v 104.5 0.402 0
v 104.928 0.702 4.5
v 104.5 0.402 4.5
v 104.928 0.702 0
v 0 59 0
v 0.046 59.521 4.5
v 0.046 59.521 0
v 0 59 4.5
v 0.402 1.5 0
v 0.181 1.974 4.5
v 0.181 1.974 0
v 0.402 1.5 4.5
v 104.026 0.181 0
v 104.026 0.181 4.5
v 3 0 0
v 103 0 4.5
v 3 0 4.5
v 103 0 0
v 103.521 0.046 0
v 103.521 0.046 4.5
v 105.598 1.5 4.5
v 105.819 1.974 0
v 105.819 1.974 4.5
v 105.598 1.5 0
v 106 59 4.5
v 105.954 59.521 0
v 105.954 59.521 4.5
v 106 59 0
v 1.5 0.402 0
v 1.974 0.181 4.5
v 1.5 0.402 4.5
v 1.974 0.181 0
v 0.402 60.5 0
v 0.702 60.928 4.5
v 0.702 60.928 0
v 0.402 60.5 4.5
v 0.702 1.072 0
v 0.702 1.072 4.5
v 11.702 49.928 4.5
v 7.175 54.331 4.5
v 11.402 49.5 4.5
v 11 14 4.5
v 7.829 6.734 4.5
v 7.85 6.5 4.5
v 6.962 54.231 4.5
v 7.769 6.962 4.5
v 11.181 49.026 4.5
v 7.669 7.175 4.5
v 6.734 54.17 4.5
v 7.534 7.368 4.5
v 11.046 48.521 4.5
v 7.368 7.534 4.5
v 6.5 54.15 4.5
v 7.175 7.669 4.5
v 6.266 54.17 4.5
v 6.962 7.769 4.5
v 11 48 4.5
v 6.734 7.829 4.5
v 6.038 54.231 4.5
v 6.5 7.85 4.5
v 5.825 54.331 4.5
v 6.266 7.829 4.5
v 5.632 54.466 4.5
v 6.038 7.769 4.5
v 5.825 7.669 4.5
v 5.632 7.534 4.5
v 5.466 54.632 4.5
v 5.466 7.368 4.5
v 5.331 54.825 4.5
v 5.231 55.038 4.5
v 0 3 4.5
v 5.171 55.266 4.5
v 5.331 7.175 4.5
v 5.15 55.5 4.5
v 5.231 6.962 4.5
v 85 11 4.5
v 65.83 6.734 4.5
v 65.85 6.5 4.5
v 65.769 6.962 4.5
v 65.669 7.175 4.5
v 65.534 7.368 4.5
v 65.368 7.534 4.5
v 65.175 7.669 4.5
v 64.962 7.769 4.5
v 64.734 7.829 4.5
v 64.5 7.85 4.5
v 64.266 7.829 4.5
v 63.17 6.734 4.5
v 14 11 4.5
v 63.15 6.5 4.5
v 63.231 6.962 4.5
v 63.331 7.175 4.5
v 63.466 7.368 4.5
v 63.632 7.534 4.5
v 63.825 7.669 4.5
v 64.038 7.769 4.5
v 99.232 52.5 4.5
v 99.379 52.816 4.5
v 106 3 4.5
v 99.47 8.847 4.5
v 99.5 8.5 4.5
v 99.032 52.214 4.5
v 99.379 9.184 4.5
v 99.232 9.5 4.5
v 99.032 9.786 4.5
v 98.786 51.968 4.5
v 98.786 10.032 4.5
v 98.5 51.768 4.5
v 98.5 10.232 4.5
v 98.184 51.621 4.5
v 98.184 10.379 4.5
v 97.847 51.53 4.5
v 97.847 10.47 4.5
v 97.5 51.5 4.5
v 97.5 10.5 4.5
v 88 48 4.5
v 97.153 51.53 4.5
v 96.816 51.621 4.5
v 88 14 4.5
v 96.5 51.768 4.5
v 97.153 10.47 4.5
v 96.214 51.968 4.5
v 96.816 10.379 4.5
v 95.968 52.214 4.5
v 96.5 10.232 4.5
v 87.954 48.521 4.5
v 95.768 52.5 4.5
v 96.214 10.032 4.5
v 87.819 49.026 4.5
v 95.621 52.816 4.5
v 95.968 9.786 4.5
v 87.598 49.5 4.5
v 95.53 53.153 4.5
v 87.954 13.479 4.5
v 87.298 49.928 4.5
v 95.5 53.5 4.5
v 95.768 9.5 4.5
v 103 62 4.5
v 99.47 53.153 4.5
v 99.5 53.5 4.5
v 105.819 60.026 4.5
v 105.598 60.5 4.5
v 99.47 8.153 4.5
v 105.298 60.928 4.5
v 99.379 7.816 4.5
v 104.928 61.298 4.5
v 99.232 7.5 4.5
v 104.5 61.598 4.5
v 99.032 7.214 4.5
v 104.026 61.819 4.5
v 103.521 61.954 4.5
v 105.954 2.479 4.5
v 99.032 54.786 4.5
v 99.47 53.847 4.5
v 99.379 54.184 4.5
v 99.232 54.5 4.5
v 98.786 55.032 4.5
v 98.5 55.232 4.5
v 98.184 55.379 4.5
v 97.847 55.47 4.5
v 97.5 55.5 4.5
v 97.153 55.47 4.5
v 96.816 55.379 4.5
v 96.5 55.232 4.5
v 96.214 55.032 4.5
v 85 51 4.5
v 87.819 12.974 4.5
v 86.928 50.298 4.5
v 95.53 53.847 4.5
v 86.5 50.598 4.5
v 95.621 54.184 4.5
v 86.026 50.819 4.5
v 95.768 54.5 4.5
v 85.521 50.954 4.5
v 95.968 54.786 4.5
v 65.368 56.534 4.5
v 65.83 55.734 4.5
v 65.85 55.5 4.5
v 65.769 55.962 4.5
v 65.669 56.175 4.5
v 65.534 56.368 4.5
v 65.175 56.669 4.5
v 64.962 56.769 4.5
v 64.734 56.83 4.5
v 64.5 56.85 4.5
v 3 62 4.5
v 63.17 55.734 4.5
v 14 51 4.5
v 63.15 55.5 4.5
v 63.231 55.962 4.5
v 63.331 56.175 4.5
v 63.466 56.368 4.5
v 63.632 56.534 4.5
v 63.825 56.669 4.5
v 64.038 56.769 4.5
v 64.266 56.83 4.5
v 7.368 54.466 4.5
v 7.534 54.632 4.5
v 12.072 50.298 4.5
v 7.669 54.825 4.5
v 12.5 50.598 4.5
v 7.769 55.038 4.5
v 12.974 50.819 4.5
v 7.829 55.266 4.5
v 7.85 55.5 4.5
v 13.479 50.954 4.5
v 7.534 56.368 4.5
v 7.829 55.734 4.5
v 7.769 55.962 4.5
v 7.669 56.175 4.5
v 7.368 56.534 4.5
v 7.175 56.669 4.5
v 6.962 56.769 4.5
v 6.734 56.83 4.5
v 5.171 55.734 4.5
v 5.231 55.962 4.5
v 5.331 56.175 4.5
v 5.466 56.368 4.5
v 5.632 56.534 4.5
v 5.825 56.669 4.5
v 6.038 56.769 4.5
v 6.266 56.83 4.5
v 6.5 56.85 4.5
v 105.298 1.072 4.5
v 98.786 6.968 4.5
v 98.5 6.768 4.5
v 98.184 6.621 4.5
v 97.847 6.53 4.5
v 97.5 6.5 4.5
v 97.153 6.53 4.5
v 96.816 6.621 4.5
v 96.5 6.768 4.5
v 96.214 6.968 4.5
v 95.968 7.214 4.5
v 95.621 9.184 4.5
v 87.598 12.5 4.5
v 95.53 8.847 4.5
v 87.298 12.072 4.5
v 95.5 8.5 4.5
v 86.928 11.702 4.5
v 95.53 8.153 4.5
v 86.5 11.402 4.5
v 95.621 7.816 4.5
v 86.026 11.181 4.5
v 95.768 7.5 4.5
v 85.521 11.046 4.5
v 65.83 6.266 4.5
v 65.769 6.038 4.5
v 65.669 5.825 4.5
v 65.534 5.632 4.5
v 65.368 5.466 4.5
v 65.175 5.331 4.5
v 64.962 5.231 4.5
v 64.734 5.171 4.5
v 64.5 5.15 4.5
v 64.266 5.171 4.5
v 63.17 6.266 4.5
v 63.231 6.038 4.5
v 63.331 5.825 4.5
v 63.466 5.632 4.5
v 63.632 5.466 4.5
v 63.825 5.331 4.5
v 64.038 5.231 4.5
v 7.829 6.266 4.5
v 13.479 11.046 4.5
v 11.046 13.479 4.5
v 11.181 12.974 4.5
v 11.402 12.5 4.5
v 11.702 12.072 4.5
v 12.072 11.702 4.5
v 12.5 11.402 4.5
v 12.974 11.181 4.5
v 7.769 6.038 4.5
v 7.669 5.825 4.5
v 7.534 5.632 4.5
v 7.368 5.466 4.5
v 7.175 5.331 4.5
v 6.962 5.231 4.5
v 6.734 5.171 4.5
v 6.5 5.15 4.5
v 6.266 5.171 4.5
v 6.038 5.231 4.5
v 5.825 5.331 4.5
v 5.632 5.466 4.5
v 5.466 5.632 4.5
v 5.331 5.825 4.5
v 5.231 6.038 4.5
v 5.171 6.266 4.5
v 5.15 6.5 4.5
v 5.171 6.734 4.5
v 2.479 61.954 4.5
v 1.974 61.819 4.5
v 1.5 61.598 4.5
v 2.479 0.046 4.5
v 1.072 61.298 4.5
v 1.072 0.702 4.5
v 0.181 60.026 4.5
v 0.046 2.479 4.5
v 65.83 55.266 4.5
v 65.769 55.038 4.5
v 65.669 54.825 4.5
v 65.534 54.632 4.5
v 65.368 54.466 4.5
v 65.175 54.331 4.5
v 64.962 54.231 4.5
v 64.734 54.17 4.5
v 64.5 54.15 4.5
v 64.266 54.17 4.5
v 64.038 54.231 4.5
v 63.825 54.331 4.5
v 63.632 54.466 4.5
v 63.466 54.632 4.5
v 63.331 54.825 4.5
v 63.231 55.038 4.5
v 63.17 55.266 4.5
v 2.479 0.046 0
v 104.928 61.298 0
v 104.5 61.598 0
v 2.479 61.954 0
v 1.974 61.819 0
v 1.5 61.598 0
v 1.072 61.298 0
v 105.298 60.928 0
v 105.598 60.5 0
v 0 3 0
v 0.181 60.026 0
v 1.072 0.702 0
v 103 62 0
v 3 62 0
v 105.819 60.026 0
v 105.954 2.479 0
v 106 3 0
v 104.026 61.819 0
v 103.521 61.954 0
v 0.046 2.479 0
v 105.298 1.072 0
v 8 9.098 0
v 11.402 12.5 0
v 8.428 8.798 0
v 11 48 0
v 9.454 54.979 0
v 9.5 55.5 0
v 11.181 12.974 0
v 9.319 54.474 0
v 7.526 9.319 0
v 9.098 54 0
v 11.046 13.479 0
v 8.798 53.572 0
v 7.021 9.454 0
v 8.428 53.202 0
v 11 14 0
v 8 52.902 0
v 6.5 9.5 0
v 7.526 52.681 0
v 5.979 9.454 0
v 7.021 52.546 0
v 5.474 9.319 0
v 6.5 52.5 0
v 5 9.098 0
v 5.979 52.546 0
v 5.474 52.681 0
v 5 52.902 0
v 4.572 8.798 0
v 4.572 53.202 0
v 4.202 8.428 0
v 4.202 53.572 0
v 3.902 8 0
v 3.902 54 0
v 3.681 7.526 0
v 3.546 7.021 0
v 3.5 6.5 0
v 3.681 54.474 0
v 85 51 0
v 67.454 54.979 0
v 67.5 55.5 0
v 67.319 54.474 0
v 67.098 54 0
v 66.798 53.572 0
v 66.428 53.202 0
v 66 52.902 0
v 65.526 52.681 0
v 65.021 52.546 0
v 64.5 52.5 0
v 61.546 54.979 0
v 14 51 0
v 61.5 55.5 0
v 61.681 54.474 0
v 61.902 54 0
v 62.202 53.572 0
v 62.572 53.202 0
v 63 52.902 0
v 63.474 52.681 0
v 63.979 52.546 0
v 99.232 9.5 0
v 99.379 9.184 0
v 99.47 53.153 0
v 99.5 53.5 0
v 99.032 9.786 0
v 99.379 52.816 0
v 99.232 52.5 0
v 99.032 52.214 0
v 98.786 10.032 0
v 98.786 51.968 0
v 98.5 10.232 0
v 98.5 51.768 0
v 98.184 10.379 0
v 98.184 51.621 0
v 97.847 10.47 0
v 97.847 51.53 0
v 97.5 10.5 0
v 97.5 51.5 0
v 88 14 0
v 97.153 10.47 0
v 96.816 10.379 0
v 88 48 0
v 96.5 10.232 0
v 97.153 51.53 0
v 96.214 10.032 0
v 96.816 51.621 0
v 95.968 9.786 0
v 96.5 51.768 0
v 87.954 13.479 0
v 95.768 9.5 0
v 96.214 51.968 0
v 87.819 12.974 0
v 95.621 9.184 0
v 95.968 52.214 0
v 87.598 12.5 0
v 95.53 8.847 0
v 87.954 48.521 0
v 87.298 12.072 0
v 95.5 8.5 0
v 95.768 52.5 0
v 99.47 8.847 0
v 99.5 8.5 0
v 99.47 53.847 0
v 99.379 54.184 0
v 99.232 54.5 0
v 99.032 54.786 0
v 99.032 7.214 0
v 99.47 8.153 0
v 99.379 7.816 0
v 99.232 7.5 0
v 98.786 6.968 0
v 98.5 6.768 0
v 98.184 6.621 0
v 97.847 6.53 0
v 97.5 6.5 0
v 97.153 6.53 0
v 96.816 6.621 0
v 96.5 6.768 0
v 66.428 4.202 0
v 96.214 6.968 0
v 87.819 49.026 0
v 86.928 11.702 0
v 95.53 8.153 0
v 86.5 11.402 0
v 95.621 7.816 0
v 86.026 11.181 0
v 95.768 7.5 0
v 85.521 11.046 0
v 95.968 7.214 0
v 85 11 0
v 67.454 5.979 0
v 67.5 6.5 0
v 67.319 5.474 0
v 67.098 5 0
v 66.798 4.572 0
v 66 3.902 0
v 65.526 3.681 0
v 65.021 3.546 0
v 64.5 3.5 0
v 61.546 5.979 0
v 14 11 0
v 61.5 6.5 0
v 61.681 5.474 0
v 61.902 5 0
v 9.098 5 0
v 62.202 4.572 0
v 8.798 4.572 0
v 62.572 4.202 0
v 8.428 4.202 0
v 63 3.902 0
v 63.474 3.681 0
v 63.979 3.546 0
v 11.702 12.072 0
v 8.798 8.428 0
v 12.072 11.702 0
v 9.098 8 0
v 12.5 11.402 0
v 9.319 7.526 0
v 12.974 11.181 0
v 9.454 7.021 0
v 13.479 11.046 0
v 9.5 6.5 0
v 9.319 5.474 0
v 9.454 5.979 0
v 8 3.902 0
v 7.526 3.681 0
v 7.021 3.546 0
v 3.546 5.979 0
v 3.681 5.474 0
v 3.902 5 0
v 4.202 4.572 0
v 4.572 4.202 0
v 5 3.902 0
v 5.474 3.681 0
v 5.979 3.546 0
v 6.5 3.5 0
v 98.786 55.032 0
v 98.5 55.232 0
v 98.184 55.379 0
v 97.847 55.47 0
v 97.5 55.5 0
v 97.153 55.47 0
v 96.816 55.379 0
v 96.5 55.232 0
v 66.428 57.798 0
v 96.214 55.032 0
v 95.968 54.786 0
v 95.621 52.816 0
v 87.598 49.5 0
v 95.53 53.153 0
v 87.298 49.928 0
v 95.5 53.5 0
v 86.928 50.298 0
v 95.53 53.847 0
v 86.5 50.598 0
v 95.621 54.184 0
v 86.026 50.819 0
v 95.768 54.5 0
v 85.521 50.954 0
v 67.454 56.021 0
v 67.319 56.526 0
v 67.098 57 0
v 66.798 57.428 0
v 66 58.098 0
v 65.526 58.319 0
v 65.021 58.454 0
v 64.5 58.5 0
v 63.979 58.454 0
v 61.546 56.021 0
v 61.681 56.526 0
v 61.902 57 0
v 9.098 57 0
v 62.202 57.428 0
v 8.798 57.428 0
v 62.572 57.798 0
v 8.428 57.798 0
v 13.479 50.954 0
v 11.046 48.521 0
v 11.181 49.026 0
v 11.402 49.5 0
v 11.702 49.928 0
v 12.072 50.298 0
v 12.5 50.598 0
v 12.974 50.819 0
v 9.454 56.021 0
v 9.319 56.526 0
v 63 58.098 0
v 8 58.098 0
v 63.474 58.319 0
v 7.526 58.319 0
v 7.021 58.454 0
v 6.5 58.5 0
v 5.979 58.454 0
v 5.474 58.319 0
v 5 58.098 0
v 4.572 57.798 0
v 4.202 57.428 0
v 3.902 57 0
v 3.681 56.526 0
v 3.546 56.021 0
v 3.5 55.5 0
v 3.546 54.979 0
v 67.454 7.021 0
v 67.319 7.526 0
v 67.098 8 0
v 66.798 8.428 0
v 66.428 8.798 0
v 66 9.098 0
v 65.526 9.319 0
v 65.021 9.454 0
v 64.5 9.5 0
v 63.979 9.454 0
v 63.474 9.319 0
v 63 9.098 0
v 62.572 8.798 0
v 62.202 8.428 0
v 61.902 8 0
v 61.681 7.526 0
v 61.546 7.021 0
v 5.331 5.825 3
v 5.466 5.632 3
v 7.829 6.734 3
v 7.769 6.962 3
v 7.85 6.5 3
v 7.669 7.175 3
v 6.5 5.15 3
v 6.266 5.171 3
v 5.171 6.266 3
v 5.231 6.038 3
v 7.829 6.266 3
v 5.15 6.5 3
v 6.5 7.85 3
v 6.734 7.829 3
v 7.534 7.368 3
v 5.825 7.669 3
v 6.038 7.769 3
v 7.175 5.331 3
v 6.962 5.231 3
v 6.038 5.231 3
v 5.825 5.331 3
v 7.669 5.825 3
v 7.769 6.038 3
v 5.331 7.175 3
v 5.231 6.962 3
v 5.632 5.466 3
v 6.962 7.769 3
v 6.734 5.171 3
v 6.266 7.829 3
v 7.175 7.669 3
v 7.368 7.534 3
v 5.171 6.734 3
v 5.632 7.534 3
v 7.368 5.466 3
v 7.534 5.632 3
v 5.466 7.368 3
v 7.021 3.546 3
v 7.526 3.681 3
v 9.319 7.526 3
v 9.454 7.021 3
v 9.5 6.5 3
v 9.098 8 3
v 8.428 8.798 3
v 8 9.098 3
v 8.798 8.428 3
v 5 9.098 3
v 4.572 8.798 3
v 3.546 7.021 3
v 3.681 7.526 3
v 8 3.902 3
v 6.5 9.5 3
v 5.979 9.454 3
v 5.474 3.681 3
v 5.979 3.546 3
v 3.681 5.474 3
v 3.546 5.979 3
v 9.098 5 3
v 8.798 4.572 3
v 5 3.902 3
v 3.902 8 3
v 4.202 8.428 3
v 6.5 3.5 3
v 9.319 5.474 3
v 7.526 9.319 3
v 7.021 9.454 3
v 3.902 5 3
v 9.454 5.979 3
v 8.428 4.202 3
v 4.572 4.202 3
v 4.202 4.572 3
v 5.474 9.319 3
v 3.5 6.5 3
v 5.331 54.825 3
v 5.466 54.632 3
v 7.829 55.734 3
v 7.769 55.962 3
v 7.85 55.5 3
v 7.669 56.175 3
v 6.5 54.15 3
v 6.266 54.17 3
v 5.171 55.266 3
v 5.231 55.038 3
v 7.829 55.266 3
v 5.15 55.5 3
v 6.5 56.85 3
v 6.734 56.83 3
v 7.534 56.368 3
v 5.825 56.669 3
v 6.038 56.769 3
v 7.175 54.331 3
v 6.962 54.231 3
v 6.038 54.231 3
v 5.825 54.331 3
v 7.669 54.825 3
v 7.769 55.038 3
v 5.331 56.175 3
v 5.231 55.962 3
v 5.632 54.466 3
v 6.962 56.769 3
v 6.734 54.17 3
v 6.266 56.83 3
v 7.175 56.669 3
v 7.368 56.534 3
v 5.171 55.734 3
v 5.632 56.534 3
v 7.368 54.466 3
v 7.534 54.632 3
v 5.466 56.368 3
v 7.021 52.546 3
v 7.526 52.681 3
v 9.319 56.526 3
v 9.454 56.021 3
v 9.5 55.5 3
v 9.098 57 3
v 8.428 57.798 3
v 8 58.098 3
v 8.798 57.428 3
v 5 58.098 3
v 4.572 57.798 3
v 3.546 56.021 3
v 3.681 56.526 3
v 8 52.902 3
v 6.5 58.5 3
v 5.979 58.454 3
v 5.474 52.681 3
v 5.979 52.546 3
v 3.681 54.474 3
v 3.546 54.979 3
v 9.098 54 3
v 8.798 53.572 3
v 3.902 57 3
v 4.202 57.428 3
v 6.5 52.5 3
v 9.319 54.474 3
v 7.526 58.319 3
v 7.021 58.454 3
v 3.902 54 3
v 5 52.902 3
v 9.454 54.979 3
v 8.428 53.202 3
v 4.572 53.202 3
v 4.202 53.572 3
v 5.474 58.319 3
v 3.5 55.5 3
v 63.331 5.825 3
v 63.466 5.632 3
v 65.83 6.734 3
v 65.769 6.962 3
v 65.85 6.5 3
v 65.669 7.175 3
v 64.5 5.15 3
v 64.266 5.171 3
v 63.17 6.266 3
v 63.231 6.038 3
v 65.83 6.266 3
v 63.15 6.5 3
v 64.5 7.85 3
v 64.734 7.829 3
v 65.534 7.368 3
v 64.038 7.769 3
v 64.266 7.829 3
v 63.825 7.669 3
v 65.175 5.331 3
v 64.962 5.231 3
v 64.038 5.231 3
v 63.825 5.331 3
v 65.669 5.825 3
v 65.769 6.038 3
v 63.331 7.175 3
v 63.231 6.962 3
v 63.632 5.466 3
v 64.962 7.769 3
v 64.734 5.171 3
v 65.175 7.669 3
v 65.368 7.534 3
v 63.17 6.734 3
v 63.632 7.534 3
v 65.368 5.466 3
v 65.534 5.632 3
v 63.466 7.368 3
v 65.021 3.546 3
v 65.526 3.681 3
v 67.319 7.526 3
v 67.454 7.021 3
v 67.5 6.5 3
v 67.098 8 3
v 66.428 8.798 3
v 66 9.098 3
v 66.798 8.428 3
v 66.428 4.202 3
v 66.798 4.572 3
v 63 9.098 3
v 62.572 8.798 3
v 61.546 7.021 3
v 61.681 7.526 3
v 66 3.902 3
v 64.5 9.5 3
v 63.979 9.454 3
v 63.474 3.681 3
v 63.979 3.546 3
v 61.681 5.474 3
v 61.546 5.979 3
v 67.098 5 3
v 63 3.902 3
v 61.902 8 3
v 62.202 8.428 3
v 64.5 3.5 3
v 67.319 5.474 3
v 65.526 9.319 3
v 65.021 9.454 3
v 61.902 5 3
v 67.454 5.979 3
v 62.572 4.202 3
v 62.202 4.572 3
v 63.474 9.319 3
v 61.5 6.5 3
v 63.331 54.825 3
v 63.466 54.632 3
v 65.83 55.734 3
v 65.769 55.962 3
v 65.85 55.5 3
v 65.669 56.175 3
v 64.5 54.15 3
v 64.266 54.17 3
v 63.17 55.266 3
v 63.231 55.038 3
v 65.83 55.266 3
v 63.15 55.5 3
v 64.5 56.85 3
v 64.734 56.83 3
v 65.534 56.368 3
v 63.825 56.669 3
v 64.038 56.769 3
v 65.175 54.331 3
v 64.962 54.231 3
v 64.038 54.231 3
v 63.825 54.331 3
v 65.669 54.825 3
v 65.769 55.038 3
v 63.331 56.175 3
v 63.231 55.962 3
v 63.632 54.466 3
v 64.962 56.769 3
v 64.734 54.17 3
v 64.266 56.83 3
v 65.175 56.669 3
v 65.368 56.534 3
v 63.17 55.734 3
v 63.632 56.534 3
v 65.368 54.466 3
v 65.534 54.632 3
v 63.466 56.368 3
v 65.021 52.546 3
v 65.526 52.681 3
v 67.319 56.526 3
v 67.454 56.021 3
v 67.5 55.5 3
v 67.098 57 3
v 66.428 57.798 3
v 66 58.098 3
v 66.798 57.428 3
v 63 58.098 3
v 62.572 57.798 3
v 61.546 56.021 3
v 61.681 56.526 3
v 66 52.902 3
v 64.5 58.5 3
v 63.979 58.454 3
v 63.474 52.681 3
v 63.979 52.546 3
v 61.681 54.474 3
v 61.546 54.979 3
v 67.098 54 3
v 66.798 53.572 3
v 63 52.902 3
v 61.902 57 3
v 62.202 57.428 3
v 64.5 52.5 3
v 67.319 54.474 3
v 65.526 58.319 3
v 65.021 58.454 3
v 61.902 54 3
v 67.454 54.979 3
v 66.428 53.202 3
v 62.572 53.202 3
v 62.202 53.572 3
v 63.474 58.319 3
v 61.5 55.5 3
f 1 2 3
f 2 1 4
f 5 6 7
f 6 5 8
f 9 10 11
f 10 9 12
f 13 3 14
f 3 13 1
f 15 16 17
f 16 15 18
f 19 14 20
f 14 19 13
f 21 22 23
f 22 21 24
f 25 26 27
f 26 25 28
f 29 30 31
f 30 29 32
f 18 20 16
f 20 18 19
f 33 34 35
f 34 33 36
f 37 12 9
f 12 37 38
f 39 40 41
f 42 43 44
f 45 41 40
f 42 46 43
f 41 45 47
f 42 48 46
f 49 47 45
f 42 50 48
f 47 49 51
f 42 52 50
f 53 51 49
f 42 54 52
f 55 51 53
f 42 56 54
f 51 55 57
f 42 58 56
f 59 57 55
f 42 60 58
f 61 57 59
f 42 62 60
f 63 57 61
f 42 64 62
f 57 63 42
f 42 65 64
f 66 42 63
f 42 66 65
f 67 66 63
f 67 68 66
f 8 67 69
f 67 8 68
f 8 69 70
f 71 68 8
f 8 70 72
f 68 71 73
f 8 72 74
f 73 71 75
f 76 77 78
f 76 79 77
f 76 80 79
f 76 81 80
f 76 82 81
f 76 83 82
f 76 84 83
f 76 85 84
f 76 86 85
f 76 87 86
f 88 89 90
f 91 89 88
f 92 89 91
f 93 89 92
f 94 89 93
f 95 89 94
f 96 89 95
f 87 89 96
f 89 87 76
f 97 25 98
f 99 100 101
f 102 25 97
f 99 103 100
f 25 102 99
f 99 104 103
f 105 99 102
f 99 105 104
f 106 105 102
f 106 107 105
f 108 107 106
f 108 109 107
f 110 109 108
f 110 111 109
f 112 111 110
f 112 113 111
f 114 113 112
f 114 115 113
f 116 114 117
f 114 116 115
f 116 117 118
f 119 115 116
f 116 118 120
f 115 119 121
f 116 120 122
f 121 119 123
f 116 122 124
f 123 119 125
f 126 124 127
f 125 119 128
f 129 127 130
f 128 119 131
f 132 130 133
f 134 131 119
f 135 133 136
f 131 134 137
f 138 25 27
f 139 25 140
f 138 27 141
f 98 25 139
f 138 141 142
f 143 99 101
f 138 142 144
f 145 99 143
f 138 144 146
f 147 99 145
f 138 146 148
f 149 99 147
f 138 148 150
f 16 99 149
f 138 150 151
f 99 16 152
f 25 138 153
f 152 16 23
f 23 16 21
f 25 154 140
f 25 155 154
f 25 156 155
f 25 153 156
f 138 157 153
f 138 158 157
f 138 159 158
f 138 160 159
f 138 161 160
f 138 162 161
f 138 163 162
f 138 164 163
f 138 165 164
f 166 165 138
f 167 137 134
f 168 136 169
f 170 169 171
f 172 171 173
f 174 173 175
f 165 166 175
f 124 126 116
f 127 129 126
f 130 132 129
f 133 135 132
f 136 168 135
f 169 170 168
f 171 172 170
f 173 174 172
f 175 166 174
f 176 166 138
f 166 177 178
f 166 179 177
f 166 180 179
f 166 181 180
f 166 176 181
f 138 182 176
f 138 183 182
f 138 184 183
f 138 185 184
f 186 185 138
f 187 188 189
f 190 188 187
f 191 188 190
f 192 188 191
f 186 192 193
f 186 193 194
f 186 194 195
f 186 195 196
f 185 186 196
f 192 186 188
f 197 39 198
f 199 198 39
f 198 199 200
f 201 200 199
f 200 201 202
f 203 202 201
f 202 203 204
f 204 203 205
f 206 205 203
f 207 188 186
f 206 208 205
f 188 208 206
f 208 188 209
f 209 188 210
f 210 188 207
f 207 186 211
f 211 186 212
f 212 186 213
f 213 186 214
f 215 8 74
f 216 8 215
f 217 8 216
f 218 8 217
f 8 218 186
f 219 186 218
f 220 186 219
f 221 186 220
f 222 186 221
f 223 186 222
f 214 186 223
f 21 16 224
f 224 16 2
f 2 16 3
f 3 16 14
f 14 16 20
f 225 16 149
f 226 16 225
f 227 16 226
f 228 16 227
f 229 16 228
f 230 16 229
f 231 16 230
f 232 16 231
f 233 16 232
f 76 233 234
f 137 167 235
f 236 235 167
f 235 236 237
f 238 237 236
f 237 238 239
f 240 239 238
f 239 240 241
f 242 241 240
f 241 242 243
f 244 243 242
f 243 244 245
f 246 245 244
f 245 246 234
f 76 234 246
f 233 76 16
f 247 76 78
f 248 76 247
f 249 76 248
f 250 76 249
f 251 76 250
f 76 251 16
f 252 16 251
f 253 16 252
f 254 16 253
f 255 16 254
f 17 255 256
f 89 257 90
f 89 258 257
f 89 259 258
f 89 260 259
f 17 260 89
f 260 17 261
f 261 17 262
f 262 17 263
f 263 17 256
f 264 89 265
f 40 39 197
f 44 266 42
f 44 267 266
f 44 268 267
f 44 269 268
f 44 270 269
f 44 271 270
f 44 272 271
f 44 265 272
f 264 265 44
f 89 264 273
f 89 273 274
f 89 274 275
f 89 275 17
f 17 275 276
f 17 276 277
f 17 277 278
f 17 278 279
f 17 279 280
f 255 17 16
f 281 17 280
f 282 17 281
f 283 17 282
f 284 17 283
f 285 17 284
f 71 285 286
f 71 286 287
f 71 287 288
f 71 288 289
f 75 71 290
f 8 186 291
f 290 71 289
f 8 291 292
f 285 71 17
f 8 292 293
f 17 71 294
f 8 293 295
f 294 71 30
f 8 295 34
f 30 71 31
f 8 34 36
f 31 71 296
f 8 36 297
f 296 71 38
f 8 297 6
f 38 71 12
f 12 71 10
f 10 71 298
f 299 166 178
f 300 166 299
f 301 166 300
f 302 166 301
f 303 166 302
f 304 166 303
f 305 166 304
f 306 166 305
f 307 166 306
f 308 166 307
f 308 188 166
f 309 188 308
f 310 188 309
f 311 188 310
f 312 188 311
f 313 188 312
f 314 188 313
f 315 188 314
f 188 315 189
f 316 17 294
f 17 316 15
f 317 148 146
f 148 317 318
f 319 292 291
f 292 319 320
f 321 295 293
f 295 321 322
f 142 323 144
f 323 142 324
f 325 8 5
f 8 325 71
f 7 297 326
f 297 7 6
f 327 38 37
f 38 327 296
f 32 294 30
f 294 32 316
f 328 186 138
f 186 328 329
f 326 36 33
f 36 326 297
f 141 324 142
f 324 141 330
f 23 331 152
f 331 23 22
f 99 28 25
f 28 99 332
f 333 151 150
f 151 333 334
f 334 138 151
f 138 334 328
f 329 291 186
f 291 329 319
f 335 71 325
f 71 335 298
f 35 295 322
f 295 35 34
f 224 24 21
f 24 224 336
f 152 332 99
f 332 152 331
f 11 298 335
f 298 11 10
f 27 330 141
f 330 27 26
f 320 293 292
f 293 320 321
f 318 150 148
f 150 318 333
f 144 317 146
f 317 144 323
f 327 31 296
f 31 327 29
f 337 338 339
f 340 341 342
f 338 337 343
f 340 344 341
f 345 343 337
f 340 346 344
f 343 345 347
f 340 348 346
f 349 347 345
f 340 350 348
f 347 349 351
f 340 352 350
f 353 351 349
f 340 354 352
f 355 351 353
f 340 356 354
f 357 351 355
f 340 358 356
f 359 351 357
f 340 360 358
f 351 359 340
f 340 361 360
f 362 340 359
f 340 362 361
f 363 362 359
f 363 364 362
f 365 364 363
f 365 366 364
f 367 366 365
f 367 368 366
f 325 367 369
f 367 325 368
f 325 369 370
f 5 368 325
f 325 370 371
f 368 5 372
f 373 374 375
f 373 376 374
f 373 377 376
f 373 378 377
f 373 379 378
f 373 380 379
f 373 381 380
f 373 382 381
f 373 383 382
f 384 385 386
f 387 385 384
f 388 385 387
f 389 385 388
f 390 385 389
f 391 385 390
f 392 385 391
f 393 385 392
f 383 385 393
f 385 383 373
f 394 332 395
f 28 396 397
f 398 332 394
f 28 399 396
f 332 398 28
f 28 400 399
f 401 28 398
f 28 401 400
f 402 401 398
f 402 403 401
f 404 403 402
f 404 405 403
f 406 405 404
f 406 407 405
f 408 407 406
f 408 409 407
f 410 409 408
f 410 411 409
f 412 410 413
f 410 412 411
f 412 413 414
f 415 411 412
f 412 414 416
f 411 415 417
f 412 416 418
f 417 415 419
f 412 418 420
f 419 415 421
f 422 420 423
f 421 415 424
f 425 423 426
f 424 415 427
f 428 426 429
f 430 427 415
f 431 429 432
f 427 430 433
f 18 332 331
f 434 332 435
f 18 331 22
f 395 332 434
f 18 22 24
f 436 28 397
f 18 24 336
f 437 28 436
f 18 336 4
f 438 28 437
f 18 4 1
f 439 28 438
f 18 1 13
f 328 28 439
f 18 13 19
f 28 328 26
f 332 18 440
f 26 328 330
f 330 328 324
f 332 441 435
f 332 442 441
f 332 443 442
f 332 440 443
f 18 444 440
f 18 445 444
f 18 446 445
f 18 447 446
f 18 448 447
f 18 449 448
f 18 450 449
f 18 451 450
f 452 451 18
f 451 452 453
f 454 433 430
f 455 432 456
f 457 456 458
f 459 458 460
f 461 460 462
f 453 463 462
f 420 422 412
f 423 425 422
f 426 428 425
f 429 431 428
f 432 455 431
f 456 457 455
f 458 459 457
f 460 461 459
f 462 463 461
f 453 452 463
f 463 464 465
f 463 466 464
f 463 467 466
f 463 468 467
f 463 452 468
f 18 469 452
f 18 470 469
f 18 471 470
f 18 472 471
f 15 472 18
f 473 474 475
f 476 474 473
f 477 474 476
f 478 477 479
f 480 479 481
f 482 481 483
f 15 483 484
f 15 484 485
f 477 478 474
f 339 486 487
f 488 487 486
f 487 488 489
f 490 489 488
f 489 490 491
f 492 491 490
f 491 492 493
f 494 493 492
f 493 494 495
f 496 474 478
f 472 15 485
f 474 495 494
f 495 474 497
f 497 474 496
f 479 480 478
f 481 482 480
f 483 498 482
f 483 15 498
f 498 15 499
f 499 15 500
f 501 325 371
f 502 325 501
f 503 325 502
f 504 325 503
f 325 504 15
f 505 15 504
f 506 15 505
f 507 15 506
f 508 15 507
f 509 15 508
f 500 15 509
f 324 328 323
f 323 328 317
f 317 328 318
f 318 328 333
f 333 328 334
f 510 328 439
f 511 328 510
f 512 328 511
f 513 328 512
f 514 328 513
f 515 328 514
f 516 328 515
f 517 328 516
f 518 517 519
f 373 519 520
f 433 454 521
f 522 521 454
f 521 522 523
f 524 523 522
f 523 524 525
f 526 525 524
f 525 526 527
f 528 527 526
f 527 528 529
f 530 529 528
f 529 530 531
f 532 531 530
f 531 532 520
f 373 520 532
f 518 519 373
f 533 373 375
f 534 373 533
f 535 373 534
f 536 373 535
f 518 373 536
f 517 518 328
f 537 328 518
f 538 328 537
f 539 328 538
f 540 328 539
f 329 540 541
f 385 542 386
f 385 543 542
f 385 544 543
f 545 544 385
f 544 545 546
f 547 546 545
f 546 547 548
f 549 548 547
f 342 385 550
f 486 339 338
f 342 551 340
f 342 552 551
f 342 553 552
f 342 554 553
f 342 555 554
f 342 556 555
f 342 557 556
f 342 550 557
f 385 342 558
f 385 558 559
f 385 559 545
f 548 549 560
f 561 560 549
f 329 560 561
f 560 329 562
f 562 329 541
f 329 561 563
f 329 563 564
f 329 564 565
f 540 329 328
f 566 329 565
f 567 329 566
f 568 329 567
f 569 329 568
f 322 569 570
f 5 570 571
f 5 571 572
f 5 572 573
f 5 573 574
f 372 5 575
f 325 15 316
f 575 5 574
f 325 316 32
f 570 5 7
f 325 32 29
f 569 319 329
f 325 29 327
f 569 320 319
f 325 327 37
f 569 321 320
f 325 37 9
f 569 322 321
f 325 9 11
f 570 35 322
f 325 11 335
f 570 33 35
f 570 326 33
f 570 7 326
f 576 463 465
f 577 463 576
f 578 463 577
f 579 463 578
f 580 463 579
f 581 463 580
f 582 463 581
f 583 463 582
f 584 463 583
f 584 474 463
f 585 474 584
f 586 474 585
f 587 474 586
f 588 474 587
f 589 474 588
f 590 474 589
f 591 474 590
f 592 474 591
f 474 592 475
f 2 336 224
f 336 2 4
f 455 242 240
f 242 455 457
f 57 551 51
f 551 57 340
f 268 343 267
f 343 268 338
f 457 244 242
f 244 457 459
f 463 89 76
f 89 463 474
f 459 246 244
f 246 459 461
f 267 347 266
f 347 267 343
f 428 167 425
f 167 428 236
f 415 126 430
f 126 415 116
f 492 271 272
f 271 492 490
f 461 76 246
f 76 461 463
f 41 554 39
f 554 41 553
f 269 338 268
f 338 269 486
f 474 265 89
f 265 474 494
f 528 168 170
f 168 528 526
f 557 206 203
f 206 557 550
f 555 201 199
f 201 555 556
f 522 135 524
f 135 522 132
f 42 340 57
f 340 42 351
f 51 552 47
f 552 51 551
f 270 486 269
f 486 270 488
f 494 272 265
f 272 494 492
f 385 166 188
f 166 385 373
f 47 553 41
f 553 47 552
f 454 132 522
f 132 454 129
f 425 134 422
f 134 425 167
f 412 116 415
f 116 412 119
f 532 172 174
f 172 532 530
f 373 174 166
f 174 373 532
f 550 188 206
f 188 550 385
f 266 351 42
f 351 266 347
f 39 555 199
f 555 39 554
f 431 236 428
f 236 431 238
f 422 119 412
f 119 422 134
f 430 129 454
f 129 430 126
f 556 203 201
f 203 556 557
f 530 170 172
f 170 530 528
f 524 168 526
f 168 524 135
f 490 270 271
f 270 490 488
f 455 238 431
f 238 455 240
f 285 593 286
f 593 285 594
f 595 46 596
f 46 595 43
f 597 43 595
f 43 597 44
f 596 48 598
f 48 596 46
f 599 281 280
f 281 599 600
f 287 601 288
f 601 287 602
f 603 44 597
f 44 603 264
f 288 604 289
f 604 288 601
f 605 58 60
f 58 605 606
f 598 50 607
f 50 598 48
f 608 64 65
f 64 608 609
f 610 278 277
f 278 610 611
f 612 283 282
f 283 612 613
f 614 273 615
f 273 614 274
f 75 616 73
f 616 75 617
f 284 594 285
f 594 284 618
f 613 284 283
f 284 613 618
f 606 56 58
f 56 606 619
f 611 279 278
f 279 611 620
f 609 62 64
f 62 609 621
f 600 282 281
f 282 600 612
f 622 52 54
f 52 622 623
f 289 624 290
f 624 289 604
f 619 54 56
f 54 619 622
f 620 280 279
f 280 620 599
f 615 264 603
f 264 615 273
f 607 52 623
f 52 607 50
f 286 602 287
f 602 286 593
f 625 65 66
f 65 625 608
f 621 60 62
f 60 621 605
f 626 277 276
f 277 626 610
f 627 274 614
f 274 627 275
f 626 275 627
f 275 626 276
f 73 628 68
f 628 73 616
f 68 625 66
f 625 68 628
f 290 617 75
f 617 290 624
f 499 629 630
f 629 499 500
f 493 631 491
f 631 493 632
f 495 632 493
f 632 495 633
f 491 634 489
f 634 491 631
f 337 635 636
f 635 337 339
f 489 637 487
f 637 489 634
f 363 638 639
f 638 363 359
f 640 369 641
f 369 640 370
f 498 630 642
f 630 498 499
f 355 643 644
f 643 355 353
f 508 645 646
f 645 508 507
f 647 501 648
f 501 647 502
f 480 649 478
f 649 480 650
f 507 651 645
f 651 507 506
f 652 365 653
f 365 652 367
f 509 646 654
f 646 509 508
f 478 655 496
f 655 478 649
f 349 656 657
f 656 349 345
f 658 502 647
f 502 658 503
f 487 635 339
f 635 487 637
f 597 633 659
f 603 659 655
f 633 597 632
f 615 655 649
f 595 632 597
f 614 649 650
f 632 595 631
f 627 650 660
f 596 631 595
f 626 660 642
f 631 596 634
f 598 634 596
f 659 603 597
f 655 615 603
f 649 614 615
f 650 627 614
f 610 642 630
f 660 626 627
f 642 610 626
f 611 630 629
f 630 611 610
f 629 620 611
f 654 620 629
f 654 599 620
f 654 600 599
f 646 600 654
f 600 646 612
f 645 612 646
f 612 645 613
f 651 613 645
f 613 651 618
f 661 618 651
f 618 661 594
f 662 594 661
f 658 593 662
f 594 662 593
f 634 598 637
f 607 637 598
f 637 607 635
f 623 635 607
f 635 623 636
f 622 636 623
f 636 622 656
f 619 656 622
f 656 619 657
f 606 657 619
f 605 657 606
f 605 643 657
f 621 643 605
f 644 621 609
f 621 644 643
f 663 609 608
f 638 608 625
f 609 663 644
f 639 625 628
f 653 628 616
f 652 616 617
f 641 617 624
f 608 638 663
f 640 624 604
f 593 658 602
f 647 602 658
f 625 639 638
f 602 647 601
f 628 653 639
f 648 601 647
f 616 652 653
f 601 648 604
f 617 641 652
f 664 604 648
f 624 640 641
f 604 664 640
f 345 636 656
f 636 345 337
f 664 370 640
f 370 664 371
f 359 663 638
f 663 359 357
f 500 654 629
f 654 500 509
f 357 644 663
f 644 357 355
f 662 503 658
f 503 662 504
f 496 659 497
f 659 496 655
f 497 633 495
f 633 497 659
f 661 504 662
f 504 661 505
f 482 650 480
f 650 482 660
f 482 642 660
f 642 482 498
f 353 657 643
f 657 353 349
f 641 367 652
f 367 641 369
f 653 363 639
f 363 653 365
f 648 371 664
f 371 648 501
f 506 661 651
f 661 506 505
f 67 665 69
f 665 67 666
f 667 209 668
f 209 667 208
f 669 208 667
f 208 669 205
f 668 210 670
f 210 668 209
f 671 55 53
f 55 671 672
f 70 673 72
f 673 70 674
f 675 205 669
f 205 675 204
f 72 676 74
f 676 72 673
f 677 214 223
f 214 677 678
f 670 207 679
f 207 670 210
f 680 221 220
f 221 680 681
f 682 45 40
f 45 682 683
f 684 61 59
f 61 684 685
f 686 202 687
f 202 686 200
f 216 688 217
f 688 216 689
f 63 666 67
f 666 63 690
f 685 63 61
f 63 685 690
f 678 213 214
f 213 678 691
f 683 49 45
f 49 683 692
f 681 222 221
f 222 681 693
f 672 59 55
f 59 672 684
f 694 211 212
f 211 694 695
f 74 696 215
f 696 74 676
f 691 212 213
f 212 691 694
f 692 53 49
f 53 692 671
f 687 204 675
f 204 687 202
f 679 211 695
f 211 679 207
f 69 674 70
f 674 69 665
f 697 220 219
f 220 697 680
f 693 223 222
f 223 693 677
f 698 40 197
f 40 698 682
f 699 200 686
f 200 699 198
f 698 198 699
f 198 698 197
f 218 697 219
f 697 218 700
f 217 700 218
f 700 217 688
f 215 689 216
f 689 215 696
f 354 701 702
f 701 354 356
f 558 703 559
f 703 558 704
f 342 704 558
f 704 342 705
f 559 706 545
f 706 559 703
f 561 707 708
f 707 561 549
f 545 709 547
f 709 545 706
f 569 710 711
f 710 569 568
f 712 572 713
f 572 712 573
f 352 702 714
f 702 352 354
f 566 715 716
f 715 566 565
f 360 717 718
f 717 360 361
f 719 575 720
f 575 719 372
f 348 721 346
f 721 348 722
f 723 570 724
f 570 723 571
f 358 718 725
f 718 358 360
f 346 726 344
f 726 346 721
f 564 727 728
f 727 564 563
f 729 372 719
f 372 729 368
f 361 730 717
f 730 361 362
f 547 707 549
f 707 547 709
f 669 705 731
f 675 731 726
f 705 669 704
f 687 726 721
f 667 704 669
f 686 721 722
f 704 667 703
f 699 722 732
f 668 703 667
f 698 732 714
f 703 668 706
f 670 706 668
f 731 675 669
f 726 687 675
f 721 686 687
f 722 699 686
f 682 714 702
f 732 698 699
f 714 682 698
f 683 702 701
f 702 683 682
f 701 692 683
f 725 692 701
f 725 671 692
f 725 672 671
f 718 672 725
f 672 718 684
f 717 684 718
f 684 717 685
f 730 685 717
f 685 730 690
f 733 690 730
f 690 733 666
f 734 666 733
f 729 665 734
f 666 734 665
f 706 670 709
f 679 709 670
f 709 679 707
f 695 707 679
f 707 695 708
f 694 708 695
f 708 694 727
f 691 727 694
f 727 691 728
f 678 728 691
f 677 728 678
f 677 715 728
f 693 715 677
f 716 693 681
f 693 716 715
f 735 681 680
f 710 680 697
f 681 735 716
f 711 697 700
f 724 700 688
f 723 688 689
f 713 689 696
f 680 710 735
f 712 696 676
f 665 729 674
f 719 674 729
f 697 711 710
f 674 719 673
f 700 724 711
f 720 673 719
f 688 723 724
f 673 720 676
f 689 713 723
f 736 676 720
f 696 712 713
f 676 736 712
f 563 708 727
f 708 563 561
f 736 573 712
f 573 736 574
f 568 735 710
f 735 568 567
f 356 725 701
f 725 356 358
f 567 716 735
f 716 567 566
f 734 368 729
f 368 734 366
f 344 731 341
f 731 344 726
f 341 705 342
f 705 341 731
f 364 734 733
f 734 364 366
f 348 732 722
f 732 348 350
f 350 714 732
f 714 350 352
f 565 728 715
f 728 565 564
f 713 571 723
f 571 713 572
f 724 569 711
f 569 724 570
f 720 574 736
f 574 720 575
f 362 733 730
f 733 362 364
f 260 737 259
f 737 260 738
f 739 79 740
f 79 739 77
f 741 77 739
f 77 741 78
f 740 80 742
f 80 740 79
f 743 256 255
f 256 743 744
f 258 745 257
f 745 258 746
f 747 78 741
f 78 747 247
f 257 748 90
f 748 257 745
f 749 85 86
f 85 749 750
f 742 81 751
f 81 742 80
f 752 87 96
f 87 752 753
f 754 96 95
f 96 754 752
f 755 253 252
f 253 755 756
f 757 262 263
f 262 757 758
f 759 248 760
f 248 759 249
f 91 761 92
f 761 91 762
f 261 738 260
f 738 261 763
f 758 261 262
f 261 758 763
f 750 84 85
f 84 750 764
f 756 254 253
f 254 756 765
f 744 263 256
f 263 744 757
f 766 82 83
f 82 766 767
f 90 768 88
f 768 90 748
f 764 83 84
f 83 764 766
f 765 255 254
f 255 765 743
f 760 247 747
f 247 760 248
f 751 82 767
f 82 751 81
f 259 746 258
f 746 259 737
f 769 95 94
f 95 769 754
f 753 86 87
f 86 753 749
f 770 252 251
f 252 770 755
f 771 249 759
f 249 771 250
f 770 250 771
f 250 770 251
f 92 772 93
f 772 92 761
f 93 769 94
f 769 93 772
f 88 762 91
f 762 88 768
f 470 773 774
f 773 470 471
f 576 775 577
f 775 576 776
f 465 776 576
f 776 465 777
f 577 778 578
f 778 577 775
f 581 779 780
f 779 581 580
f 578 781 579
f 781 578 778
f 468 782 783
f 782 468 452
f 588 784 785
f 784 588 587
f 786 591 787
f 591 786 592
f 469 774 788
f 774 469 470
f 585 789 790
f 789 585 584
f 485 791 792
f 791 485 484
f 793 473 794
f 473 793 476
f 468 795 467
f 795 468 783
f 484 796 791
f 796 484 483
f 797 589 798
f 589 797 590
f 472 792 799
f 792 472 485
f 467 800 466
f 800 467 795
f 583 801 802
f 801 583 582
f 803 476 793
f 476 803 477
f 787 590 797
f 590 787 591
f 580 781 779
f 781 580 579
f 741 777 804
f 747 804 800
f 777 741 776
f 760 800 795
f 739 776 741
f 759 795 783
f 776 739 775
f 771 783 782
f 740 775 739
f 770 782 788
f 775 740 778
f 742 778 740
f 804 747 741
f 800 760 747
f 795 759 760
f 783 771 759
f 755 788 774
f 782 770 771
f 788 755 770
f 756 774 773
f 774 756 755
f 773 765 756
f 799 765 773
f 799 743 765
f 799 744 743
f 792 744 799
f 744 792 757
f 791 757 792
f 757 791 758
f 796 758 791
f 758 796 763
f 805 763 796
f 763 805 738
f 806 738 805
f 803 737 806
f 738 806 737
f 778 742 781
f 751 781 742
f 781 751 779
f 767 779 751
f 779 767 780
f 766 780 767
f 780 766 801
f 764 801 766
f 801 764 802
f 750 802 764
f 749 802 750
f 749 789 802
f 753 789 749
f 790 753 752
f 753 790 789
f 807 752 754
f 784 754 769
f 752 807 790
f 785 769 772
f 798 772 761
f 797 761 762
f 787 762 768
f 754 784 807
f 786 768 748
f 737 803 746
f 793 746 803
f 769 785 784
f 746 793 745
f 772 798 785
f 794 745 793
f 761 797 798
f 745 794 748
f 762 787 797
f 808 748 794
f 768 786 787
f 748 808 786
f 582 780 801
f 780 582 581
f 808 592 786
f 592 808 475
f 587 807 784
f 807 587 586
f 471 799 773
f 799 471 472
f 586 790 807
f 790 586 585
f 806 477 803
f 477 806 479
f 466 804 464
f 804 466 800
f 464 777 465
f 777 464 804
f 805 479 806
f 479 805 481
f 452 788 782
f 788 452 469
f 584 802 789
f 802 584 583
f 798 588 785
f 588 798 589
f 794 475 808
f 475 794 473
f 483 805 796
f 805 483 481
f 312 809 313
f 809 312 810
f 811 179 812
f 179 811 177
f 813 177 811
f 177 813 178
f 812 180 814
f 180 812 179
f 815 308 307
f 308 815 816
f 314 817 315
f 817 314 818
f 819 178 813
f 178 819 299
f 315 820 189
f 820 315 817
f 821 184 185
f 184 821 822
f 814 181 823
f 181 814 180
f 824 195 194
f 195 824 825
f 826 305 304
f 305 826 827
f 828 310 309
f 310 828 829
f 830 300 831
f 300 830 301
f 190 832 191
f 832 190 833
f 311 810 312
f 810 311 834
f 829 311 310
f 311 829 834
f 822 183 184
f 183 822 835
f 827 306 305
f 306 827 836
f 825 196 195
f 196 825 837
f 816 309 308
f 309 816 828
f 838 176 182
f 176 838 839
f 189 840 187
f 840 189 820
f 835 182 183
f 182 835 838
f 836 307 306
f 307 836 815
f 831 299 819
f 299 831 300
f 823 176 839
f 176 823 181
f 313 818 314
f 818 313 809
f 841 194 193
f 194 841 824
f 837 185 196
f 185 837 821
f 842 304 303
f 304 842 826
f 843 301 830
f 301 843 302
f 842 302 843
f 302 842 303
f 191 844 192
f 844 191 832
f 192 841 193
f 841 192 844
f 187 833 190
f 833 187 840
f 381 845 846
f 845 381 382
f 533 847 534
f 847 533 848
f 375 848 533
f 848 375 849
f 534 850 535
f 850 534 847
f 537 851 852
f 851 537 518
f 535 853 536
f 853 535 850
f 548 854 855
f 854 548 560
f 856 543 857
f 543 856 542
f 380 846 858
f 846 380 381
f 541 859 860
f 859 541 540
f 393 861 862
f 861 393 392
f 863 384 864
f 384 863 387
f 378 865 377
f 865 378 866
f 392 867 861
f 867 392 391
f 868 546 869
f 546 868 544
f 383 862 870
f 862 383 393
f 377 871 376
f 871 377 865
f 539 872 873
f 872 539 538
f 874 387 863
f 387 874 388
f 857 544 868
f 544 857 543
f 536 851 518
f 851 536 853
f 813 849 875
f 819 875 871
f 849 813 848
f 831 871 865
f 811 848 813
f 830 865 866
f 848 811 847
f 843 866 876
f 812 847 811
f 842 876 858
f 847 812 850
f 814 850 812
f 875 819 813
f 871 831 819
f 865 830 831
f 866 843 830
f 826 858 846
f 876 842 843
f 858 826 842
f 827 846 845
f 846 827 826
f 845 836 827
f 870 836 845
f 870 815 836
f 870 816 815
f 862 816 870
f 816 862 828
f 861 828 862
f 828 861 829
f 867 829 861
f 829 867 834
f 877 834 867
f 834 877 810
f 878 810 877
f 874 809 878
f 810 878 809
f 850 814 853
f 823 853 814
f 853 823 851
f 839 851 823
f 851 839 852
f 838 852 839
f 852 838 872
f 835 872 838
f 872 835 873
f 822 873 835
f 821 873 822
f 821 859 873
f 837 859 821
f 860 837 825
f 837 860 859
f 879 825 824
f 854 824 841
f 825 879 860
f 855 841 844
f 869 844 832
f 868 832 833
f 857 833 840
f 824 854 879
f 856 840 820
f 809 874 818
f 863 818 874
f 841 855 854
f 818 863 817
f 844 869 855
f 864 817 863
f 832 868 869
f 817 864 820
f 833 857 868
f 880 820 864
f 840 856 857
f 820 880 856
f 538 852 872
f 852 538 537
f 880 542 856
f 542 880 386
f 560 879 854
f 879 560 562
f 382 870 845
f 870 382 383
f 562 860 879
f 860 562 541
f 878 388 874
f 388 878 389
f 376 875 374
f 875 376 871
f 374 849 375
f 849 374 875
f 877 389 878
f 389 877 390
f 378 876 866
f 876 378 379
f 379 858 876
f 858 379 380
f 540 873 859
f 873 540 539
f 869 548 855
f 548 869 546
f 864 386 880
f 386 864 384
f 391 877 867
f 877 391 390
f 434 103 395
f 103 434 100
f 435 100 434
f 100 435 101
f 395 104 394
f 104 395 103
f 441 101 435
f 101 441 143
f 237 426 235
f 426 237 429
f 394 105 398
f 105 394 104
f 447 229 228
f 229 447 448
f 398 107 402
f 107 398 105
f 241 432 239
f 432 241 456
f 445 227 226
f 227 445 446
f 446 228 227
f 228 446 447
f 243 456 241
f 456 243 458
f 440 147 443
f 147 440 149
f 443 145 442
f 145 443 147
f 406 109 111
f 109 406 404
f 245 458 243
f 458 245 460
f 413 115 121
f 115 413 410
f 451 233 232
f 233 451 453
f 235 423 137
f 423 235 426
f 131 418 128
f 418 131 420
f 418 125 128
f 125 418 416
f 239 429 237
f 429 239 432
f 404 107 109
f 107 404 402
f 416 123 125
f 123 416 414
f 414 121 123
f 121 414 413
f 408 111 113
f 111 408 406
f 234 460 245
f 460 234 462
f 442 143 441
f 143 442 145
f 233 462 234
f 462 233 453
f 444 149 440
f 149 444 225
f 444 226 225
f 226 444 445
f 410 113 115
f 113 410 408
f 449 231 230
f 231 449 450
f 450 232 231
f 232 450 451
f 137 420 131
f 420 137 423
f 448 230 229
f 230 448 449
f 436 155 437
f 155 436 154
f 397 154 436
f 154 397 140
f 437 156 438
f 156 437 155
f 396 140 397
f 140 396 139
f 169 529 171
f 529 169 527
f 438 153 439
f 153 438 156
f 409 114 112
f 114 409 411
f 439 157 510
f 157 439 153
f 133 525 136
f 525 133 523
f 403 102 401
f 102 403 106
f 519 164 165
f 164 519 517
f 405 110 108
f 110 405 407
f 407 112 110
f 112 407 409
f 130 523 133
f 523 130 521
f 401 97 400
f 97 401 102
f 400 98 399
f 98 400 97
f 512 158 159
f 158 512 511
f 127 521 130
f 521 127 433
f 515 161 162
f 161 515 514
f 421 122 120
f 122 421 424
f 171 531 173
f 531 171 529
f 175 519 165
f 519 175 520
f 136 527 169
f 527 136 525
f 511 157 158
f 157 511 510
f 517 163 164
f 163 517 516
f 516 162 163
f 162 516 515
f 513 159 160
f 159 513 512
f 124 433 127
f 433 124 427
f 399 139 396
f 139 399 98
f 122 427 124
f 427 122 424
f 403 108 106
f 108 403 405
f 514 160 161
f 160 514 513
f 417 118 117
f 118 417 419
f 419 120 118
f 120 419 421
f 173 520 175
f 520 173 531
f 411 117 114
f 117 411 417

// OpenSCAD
// file: rounded.scad
//
// Copyright (c) Stewart Whitman, 2020.
//
// File:    rounded.scad
// Project: Obihai 200 Mount
// License: CC BY-NC-SA 4.0 (Attribution-NonCommercial-ShareAlike)
// Desc:    Rounded cube/cylinder utilities
//

// rounded_side_cube:
//
// Generate a cube of <size> with a round-over <radius> in
// the X/Y direction. Centered optionally like a cube.
//
module rounded_side_cube( size, radius, center=false ) {
  assert( is_num(size) || is_list(size) );
  assert( is_num(radius) && radius >= 0 );

  c = is_list(size) ? size : [size,size,size];

  assert( len(c) == 3 );
  assert( c.x > 2*radius );
  assert( c.y > 2*radius );

  translate( [0,0,center?-c.z/2:0] )
    linear_extrude( height=c.z )
      offset( r=radius )
	offset( delta=-radius )
	  square( [c.x,c.y], center=center ); 
} // end rounded_side_cube

// rounded_top_cylinder:
//
// Generate a cylinder with a rounded top, with <d,r,h> parameters
// like cylinder, but <radius> defines the round-over radius.
//
module rounded_top_cylinder(h,d,r,radius,center=false) {
  assert( is_num(h) && h > 0 );
  assert( (is_undef(r) || is_undef(d)) && (is_num(r) || is_num(d)) ); // Not both
  assert( is_num(radius) );
  assert( h > radius );

  cylinder_radius = is_undef(d) ? r : d/2;
  assert( cylinder_radius > radius );

  translate( [0,0,(center?-h/2:0)] )
    rotate_extrude()
      intersection() {
        offset( r=+radius ) offset( delta=-radius ) square( [ 2*cylinder_radius, 2*h ], center=true );
        square( [cylinder_radius,h] );
      }
} // end rounded_top_cylinder

// rounded_top_and_bottom_cylinder:
//
// Generate a cylinder with a rounded top and bottom, with <d,r,h> parameters
// like cylinder, but <radius> defines the round-over radius.
//
module rounded_top_and_bottom_cylinder(h,d,r,radius,center=false) {
  assert( is_num(h) && h > 0 );
  assert( (is_undef(r) || is_undef(d)) && (is_num(r) || is_num(d)) ); // Not both
  assert( is_num(radius) );
  assert( h > radius );

  cylinder_radius = is_undef(d) ? r : d/2;
  assert( cylinder_radius > radius );

  translate( [0,0,(center?-h/2:0)] )
    rotate_extrude() 
      intersection() {
        translate( [-cylinder_radius, 0 ] ) offset( r=+radius ) offset( delta=-radius ) square( [ 2*cylinder_radius, h ], center=false );
	square( [cylinder_radius,h] );
      }
} // end rounded_top_and_bottom_cylinder

// rounded_top_cube:
//
// Generate a cube of <size> with a top with a round-over <radius> in
// the X/Y/Z direction. Centered optionally like a cube.
//
module rounded_top_cube(size,radius,center=false) {
  assert( is_num(size) || is_list(size) );
  assert( is_num(radius) && radius >= 0 );

  size_v = is_list(size) ? size : [size,size,size];

  rounded_top_volume( size_v, radius, center ? [0,0,0] : size_v/2 ) cube(size_v,center=center);
} // end rounded_top_cube

// rounded_top_volume:
//
// Operates on its children creating a round over effect based
// on percentage of height. Operations are:
//    1. Translate volume from <c> to origin
//    2. Scale X/Y volume down based-on the radius to be added in step 3
//    3. Minkowski with sphere adding 2*radius in all dimensions
//    4. Remove rounded over bottom radius:
//     a. Translate down a radius
//     b. Intersect with full volume
//    5. Restore volume to <c>
//
module rounded_top_volume(volume,radius,c=[0,0,0]) {
  assert( is_num(radius) && radius >= 0 );
  assert( is_list(volume) && len(volume) == 3 );
  assert( volume.x > 2*radius );
  assert( volume.y > 2*radius );

  if( radius > 0 ) {
    delta        = volume - [2*radius, 2*radius, 0];
    scale_factor = [delta.x/volume.x, delta.y/volume.y, 1 ];

    translate(c) intersection() {
      cube( volume, center=true );
      translate([0, 0, -radius ] ) minkowski() {
	scale( scale_factor ) translate(-c) children();
	sphere( r=radius );
      }
    }
  }
  else
    children();
} // end rounded_top_volume
// file: smidge.scad
//
// Copyright (c) Stewart H. Whitman, 2021-2022.
//
// File:    smidge.scad
// Project: General
// License: CC BY-NC-SA 4.0 (Attribution-NonCommercial-ShareAlike)
// Desc:    SMIDGE constant used in preview mode.
//

// Smidge constant for rendering only (to avoid Z-axis fighting, etc.)
SMIDGE = 0.01;
// main file
//
// Copyright (c) Stewart H. Whitman, 2020-2021.
//
// File:    pi-standoff-mount.scad
// Project: Raspberry PI Mount
// License: CC BY-NC-SA 4.0 (Attribution-NonCommercial-ShareAlike)
// Desc:    Stand-off only Raspberry Pi Mount
//

include <smidge.scad>;
include <rounded.scad>;

/* [General] */
// Show mount, mount with Pi 3, mount with Pi 4
show_selection = "mount"; // [ "mount", "mount/pi3", "mount/pi4" ]

/* [PI] */
// Reverse the orientation of the pi
pi_reverse = false;

// Size of a Pi board (should not change)
pi_size = [ 85, 56 ];

// Indent of Pi board holes from corners/sides (should not change)
pi_holes_offset = [ 3.5, 3.5 ];

// Mounting offsets of Pi board (should not change)
pi_holes_xy = [ pi_holes_offset, pi_holes_offset + [0,49], pi_holes_offset + [ 58, 0 ], pi_holes_offset + [ 58, 49 ] ];

// Mounting offsets of Pi board (should not change)
pi_holes_y  = [ pi_holes_offset.y, pi_holes_offset.y+49 ];

// Diameter of holes under pi
pi_hole_diameter = 2.7;

/* [Mount] */
// Offset of pi from sides of mount
mount_pi_offset = [3,3];

// Thickness of mount
mount_thickness = 4.5;

// Corner radius of mount (primarily decorative, 3 matches Pi)
mount_corner_radius = 3;

// Extra amount about Pi size to add onto Mount
mount_handle_size = [ 15, 0 ];

// Diameter of the two large holes for mounting the mount
mount_hole_diameter = 4;

// Hole adjustment
mount_hole_adjustment = [ -2, +2 ];

// Base volume
mount_base_size = concat( 2*mount_pi_offset + pi_size + mount_handle_size, mount_thickness );

// Amount to cutout of base interior below pi
mount_cutout_inset = 6;
mount_cutout = [mount_cutout_inset+2,mount_cutout_inset+2];
mount_cutout_size = concat( pi_size-[1*mount_cutout.x,2*mount_cutout.y], mount_thickness );

// Depth of hidden recess for standoff screws in mount
mount_hidden_inset_depth = 3;

// Diameter of hidden recess for standoff screws in mount
mount_hidden_inset_diameter = 6;

/* [Hidden] */
// Height of standoff
standoff_height = 8;

// Circular diameter of standoff
standoff_diameter = 6;

// pi_reverse_xy: Reverse the pi's orientation if requested
function pi_reverse_xy(v) = [pi_reverse ? pi_size.x-v.x : v.x, v.y ];

// Models:
//
// pi4 - Raspberry Pi 4 Model from Coder-Tronics on Thingiverse
// pi3 - Raspberry Pi 3 Model B Reference Design from Mechatronics Art on GrabCAD
//
module pi4() {
  translate( [53,49,-14] )
    import( file = "RPi4.STL" );
} // end pi4

module pi3() {
  translate( [-3,-2, -2] ) // offset for connectors/sdcard
    import( file = "Raspberry_Pi_3_Light_Version.STL" );
} // end pi3

// hexagon:
//
// Create an extruded hexagon with height <h> and
// circumscribed circle diameter <d> 
//
module hexagon( d, h ) {
  cylinder( d=d, h=h, $fn=6 );
}

// pi:
//
// Display the Raspberry PI Model with Stand-Offs
//
module pi(transparency=0.5) {
  // pi_rotate: Rotate the pi if requested.
  module pi_rotate() {
    if( pi_reverse )
      translate( concat( +pi_size/2, 0 ) ) rotate( 180 ) translate( concat( -pi_size/2, 0 ) ) children();
    else
      children();
  } // end pi_rotate

  translate( [0,mount_handle_size.y/2, 0 ] + concat( mount_pi_offset, mount_thickness ) ) {
    color("red", transparency )
      translate( [0,0,standoff_height] )
	pi_rotate() {
	  if( show_selection == "mount/pi4" )
	    pi4();
	  else
	    pi3();
	}

    color("gold", transparency )
      for( p = pi_holes_xy )
	difference() {
	  translate( concat( pi_reverse_xy(p), 0 ) ) hexagon( d=standoff_diameter, h=standoff_height );
	  hole( concat( pi_reverse_xy(p), standoff_height ), pi_hole_diameter );
        }
  }
} // end pi

// hole:
//
// Position a hole with a particular diameter
//
module hole(pos,diameter) {
  p = len(pos) < 3 ? concat( pos, 100 ) : pos;
  translate( [p.x,p.y,-SMIDGE] ) cylinder( d=diameter, h=p.z+2*SMIDGE);
} // end hole

// base:
//
// Create the base layout.
//
module base() {
  difference() {
    rounded_side_cube( mount_base_size, radius=mount_corner_radius );
    translate( [0,mount_handle_size.y/2, 0 ] )
      translate( concat(mount_pi_offset + mount_cutout, -SMIDGE) )
        rounded_side_cube( mount_cutout_size + [0,0,2*SMIDGE], radius=mount_corner_radius );
  }
} // end base

// mount:
//
// Base with drilled holes.
//
module mount() {
  difference() {
    base();
    translate( [0,mount_handle_size.y/2, 0 ] ) {
      translate( concat( mount_pi_offset, 0 ) ) {
	for( p = pi_holes_xy ) {
	  hole( concat( pi_reverse_xy(p), mount_thickness ), pi_hole_diameter );
	  if( mount_hidden_inset_depth > 0 )
	    hole( concat( pi_reverse_xy(p), mount_hidden_inset_depth ), mount_hidden_inset_diameter );
	}
      }
      for( y = pi_holes_y )
	translate( [mount_hole_adjustment.x, y < mount_base_size.y/2 ? mount_hole_adjustment.y : -mount_hole_adjustment.y, 0] )
	  hole( concat( [mount_base_size.x-pi_holes_offset.x-mount_pi_offset.x, mount_pi_offset.y+y], mount_base_size.z ), mount_hole_diameter );
    }
  }
} // end mount

$fn = 36;

if( show_selection != "mount" )
  pi();
mount();
